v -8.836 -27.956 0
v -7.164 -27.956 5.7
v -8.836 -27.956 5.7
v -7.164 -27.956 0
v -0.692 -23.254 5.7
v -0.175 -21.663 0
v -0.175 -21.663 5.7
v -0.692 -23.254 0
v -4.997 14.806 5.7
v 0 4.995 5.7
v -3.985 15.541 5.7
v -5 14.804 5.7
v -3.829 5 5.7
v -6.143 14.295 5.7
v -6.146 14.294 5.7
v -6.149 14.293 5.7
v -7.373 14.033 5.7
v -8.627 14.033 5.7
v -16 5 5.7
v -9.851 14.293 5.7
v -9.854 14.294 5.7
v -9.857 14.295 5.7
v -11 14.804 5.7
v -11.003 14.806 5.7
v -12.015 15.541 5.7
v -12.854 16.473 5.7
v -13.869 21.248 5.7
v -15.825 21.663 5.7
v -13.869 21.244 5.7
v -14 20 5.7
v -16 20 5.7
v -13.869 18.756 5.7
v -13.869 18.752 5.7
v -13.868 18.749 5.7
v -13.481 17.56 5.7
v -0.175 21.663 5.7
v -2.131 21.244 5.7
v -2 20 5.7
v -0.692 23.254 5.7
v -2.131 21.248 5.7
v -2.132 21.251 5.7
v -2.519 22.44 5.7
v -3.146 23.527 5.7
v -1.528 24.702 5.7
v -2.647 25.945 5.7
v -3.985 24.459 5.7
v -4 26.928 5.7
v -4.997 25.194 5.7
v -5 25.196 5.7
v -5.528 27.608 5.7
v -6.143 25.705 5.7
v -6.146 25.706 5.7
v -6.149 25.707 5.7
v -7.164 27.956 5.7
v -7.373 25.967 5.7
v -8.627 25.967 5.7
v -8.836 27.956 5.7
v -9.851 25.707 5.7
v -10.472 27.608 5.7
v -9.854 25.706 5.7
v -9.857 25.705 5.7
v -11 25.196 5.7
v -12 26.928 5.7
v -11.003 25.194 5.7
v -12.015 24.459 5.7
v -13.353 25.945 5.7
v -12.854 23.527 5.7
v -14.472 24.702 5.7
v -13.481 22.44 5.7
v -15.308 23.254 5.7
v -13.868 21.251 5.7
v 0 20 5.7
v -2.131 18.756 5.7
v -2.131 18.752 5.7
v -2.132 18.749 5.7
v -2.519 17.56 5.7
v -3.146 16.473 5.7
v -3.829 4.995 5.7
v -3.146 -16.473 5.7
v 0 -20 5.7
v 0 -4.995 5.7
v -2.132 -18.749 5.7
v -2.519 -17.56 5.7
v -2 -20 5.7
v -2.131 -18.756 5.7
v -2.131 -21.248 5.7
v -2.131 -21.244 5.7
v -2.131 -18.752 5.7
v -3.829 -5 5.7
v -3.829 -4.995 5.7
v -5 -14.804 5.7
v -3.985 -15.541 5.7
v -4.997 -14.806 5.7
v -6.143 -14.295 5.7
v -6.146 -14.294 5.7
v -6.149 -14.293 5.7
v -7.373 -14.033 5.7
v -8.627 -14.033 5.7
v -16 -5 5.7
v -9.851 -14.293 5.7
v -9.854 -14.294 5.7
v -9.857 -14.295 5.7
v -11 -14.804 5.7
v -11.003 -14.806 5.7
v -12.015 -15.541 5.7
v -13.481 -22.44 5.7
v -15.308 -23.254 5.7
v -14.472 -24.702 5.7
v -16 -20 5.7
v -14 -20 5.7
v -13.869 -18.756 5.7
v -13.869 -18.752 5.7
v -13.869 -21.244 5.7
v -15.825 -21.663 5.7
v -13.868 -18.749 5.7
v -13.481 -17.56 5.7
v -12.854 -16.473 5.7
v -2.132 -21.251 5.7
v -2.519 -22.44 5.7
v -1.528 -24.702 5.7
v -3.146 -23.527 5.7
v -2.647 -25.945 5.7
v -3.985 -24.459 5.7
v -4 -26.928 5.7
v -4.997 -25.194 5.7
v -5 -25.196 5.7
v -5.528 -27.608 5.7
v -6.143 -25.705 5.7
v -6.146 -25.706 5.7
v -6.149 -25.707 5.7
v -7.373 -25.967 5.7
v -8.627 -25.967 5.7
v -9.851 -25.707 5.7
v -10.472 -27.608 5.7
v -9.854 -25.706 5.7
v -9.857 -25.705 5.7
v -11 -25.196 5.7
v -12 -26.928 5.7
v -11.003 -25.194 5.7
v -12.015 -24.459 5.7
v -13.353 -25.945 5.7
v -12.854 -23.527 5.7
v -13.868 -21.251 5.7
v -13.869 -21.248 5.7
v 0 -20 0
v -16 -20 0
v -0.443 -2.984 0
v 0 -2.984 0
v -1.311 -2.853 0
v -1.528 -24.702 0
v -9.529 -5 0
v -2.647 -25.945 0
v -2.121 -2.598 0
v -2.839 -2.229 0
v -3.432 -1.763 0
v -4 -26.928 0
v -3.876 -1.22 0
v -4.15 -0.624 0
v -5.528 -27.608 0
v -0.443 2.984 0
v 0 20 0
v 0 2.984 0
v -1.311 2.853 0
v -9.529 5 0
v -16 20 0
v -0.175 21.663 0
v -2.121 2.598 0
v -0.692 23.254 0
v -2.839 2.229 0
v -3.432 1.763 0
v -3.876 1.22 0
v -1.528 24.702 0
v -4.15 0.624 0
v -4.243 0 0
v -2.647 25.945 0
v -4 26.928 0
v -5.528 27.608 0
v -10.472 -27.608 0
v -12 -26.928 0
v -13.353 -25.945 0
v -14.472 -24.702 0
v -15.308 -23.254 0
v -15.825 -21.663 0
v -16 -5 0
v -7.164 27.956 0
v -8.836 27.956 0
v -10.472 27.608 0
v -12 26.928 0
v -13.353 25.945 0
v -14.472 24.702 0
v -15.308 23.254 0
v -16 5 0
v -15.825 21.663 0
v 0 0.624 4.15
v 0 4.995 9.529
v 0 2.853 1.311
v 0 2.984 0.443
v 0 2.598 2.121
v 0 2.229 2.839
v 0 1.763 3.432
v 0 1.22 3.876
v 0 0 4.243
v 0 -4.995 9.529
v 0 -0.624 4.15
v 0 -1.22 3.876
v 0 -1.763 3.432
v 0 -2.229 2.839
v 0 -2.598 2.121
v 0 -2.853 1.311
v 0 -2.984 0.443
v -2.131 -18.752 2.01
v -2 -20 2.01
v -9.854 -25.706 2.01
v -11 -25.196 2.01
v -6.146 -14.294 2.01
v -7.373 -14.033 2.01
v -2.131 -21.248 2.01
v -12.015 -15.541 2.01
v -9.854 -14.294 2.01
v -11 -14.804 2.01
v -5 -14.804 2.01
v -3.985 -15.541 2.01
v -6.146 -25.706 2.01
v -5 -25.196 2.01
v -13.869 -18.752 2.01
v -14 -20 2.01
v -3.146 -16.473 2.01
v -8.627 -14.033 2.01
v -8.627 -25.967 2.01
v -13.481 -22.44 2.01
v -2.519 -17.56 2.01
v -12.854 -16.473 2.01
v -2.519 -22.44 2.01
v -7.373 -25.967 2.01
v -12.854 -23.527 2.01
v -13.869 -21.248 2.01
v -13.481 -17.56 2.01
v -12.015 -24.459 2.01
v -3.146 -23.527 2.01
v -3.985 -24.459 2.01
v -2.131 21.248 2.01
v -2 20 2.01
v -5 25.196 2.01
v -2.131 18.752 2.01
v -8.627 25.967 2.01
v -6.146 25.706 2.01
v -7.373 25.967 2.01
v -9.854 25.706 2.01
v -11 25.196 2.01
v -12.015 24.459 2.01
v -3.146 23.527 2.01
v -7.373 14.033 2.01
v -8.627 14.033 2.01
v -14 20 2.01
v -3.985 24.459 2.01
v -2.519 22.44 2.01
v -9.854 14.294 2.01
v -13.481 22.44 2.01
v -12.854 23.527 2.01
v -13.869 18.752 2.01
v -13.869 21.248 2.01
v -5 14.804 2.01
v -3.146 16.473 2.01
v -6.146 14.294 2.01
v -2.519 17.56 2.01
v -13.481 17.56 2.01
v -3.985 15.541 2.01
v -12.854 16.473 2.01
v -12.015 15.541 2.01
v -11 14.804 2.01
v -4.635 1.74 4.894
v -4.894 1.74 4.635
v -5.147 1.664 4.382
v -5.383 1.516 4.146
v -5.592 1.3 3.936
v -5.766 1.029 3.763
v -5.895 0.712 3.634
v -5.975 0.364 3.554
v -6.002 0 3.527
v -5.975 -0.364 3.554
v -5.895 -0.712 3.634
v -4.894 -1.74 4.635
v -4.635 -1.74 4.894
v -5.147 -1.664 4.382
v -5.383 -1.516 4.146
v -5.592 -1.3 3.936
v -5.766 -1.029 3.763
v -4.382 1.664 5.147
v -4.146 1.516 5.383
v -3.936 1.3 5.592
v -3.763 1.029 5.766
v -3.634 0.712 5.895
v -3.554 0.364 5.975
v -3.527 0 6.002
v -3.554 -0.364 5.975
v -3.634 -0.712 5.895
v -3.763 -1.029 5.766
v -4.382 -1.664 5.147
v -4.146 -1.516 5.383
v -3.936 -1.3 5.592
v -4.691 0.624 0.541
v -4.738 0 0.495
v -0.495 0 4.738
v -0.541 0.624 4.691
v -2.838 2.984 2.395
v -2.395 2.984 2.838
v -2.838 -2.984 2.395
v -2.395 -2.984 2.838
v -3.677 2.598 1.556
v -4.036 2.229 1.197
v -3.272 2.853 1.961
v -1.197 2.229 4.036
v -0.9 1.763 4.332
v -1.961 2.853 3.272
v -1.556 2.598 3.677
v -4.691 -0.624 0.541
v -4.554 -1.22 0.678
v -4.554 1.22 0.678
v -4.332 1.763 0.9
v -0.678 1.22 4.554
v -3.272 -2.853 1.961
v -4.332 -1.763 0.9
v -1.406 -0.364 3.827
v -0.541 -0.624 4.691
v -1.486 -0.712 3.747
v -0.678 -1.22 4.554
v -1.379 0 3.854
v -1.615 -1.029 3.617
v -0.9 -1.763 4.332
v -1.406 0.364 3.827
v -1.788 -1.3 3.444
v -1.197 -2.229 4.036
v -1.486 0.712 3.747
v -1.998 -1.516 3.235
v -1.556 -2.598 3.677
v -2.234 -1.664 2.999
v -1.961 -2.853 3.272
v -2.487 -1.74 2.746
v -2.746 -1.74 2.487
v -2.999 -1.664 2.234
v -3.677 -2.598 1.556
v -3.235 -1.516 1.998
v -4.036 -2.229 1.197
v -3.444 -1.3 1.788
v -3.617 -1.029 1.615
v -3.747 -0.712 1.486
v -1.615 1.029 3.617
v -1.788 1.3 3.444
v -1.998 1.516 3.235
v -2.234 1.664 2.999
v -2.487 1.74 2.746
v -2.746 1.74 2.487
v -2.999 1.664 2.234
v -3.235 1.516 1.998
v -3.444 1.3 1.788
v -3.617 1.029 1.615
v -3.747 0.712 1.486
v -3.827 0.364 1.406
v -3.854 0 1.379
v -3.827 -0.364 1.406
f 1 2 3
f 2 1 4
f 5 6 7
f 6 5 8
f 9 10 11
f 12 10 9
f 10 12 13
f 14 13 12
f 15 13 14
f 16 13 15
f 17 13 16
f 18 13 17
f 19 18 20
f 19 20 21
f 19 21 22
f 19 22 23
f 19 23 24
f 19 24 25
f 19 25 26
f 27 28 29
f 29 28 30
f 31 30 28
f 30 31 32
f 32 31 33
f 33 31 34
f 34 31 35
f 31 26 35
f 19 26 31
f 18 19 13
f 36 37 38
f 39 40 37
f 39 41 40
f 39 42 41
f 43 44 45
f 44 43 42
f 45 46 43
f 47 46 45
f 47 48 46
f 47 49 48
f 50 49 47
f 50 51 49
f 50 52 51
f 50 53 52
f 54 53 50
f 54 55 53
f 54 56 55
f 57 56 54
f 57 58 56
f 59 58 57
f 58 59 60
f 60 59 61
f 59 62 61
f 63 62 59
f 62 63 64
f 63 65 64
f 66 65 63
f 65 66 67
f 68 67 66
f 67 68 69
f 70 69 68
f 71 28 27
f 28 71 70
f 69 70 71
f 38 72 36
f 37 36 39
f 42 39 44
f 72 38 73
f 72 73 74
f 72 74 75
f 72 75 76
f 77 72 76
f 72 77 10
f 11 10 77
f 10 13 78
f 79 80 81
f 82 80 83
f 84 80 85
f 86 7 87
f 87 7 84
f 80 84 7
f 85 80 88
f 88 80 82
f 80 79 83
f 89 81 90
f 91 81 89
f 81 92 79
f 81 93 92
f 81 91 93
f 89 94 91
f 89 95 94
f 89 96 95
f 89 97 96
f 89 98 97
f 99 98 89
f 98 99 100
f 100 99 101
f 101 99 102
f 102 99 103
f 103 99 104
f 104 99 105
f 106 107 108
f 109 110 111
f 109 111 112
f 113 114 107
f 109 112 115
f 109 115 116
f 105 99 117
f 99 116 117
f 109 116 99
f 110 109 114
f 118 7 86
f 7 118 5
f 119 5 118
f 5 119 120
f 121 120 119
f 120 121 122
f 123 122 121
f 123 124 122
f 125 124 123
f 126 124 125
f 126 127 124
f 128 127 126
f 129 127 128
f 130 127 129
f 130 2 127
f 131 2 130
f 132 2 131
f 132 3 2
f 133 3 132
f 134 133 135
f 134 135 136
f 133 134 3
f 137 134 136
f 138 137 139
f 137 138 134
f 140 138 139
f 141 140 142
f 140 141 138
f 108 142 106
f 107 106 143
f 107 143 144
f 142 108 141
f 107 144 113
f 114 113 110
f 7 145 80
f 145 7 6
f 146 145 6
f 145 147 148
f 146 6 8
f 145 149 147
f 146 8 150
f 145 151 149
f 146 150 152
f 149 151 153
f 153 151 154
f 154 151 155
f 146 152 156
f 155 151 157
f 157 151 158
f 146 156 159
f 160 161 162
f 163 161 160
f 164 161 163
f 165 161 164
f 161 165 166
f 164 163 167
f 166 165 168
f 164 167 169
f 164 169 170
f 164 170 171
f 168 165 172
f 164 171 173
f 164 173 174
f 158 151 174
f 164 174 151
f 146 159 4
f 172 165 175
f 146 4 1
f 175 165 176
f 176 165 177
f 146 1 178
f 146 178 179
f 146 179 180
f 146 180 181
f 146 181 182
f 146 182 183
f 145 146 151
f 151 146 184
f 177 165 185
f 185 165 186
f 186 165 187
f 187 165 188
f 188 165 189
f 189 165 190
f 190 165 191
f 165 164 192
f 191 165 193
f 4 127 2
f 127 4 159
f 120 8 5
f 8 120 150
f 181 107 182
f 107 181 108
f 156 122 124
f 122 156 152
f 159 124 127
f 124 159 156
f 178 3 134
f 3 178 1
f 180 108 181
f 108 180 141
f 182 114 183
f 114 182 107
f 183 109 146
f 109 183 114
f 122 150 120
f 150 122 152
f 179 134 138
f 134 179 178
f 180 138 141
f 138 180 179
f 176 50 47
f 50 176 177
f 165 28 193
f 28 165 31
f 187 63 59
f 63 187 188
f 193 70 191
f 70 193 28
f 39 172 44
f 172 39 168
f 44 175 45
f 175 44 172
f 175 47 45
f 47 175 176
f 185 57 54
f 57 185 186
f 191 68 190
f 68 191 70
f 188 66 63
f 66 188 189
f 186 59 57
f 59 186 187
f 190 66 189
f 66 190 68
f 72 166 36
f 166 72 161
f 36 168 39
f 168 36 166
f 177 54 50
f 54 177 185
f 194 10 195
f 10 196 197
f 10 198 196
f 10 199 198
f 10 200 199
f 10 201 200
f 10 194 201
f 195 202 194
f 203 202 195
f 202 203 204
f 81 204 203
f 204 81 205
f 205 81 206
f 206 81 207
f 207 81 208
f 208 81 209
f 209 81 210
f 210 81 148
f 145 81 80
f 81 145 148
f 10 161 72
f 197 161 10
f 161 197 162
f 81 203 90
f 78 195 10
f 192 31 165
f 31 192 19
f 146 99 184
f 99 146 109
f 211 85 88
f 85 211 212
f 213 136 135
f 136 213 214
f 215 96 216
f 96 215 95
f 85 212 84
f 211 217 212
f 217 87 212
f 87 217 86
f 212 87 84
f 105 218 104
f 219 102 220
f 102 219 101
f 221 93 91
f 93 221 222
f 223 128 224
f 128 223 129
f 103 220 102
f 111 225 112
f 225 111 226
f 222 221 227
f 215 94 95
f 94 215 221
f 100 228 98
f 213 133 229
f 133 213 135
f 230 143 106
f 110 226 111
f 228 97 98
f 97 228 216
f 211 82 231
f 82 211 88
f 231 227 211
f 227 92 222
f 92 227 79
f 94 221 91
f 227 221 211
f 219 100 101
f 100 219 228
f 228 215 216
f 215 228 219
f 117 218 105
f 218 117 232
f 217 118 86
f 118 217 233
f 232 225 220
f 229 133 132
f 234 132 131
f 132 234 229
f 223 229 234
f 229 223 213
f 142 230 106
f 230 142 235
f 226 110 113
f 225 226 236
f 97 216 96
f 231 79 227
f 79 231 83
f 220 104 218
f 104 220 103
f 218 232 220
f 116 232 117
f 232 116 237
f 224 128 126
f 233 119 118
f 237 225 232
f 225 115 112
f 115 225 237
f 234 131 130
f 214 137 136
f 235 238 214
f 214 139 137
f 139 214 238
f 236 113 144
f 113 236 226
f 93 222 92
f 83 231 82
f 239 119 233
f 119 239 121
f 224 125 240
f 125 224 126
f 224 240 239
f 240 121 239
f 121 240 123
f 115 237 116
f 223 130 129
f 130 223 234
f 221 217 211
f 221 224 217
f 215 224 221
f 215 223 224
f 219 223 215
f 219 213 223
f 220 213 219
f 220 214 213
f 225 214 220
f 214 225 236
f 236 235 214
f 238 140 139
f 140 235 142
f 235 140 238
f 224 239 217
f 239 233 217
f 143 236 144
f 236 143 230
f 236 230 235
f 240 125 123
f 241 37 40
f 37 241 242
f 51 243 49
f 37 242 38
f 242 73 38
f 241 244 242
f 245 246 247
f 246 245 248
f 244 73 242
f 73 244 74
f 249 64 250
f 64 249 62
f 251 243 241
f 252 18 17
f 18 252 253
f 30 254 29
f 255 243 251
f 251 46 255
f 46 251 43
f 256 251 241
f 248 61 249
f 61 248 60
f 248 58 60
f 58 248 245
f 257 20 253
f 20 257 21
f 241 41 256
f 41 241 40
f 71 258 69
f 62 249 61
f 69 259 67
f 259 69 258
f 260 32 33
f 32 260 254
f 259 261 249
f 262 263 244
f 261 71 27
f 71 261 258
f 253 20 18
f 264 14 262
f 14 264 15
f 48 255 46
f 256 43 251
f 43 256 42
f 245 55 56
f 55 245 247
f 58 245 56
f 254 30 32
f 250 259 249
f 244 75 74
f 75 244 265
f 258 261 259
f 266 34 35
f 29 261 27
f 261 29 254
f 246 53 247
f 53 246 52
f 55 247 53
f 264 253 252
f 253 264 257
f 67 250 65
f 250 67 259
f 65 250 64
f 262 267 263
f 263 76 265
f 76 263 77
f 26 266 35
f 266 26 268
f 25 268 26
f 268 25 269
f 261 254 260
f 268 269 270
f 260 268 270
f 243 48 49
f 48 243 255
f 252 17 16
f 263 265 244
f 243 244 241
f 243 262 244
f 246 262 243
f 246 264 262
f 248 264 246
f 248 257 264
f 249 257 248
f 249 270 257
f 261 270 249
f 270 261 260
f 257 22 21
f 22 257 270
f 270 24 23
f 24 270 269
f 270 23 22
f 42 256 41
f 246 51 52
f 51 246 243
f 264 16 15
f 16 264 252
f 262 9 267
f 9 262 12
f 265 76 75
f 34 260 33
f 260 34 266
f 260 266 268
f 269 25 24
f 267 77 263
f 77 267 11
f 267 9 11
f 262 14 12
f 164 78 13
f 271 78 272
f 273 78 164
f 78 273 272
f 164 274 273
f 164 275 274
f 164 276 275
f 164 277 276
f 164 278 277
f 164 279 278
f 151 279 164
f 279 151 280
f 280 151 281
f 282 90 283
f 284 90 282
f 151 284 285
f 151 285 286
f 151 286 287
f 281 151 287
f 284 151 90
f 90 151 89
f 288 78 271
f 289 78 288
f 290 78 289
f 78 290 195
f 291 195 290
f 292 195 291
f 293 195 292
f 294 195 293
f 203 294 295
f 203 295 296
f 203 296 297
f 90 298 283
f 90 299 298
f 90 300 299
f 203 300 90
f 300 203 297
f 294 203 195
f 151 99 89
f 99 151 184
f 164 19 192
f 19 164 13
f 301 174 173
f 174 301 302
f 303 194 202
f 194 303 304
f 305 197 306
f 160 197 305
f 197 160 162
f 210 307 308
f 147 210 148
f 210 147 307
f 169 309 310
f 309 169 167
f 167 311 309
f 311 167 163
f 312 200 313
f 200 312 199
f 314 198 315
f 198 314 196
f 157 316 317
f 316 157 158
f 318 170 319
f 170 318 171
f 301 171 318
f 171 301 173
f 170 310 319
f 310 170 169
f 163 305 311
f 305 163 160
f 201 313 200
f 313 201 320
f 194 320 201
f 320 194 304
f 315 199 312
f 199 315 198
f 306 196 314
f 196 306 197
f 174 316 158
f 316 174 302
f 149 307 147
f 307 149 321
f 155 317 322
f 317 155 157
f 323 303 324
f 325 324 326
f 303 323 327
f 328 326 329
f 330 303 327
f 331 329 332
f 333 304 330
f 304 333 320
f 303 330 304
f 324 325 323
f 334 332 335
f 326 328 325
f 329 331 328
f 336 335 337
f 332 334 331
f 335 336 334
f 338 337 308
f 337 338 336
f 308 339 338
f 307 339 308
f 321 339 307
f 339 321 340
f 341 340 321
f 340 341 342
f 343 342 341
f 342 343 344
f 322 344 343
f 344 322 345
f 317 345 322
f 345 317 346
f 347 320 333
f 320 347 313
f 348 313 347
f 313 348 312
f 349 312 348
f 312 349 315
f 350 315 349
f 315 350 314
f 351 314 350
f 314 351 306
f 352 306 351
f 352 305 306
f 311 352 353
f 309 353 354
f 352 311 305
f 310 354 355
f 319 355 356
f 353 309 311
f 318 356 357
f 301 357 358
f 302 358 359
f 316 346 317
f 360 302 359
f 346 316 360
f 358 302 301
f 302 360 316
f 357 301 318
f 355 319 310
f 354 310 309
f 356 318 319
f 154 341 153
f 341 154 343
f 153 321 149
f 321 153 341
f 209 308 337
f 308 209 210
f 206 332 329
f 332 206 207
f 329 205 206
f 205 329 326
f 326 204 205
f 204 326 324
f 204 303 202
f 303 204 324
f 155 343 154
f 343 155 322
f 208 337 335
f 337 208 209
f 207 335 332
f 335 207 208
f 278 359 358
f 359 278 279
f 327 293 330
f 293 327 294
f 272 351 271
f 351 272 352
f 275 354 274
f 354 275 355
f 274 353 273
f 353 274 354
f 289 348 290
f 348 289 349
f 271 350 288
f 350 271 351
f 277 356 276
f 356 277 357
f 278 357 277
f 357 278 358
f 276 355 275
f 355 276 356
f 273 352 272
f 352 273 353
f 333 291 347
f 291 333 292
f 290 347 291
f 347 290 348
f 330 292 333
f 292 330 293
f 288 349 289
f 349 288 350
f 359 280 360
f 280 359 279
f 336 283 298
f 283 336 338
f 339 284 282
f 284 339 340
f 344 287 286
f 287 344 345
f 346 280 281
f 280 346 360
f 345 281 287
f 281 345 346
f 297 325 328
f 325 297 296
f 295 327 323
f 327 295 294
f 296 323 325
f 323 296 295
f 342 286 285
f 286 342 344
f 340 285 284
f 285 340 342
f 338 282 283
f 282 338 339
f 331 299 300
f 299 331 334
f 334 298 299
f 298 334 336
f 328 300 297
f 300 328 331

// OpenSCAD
mm=1;
cm = 10*mm;
in=25.4*mm;
$fn=30;

makerbeam_length=100*mm;
makerbeam_width = 10*mm;
bearing_rad = 5*mm;
magnet_rad = 6*mm;
magnet_th=3.7*mm;
bearing_offset = 20*mm;

sphere_plus_magnet_diameter = 11.6*mm;
magnet_center_th = sphere_plus_magnet_diameter - 2*bearing_rad;

module magnet() {
    difference() {
        cylinder(r=magnet_rad, h=magnet_th);
        //translate([0,0,bearing_rad+magnet_center_th])
        //sphere(bearing_rad);
    }
}

eps=0.01*mm;
module stuff_to_hold() {
    color("red")
    for(side=[-1,1])
    translate([0,side*bearing_offset,0])
    union(){
        //sphere(bearing_rad);
        rotate([0,45,0])
        translate([0,0,-bearing_rad-magnet_center_th+eps])
        magnet();
    }
    difference(){
        cube([makerbeam_length, makerbeam_width, makerbeam_width], center=true);
        *for(rot=[0,90,180,270])
        rotate([rot,0,0])
        translate([0*mm,0*mm,5*mm])
        cube([makerbeam_length+1*mm, 2.8*mm,2.8*mm], center=true);
    }
}


wall = 2*mm;
holder_th = magnet_th+wall;
holder_width = 2*magnet_rad+2*wall;

module holder() {

    translate([3*mm,0,-0.*mm])
    cube([10*mm,9.99*mm,10*mm],center=true);
    translate([0,0,-holder_th/2])
    cube([holder_width, 2*bearing_offset, holder_th],center=true);
    for(side = [-1,1])
    translate([0,side*bearing_offset,-holder_th])
    cylinder(r=holder_width/2, h=holder_th);
}

module plate(){
    difference(){
        holder();
        translate([0,0,bearing_rad+magnet_center_th-magnet_th])
        rotate([0,-45,0])
        stuff_to_hold();
    }
}

screw_cutdepth = 6.7*mm;
screw_hole_rad = 3.5*mm/2;
screw_head_rad = 6*mm/2;
module screw(){
    cylinder(r=screw_head_rad, h=1*in);
    translate([0,0,-1*in+eps])
    cylinder(r=screw_hole_rad,h=1*in);
}

rotate([0,135,0])
translate([0,0,-screw_cutdepth])
difference(){
    translate([0,0,screw_cutdepth])
    rotate([0,-135,0])
    translate([-holder_width/2,0,holder_th])
    plate();
    
    translate([0,0,3*mm])
    color("green")
    screw();
}
